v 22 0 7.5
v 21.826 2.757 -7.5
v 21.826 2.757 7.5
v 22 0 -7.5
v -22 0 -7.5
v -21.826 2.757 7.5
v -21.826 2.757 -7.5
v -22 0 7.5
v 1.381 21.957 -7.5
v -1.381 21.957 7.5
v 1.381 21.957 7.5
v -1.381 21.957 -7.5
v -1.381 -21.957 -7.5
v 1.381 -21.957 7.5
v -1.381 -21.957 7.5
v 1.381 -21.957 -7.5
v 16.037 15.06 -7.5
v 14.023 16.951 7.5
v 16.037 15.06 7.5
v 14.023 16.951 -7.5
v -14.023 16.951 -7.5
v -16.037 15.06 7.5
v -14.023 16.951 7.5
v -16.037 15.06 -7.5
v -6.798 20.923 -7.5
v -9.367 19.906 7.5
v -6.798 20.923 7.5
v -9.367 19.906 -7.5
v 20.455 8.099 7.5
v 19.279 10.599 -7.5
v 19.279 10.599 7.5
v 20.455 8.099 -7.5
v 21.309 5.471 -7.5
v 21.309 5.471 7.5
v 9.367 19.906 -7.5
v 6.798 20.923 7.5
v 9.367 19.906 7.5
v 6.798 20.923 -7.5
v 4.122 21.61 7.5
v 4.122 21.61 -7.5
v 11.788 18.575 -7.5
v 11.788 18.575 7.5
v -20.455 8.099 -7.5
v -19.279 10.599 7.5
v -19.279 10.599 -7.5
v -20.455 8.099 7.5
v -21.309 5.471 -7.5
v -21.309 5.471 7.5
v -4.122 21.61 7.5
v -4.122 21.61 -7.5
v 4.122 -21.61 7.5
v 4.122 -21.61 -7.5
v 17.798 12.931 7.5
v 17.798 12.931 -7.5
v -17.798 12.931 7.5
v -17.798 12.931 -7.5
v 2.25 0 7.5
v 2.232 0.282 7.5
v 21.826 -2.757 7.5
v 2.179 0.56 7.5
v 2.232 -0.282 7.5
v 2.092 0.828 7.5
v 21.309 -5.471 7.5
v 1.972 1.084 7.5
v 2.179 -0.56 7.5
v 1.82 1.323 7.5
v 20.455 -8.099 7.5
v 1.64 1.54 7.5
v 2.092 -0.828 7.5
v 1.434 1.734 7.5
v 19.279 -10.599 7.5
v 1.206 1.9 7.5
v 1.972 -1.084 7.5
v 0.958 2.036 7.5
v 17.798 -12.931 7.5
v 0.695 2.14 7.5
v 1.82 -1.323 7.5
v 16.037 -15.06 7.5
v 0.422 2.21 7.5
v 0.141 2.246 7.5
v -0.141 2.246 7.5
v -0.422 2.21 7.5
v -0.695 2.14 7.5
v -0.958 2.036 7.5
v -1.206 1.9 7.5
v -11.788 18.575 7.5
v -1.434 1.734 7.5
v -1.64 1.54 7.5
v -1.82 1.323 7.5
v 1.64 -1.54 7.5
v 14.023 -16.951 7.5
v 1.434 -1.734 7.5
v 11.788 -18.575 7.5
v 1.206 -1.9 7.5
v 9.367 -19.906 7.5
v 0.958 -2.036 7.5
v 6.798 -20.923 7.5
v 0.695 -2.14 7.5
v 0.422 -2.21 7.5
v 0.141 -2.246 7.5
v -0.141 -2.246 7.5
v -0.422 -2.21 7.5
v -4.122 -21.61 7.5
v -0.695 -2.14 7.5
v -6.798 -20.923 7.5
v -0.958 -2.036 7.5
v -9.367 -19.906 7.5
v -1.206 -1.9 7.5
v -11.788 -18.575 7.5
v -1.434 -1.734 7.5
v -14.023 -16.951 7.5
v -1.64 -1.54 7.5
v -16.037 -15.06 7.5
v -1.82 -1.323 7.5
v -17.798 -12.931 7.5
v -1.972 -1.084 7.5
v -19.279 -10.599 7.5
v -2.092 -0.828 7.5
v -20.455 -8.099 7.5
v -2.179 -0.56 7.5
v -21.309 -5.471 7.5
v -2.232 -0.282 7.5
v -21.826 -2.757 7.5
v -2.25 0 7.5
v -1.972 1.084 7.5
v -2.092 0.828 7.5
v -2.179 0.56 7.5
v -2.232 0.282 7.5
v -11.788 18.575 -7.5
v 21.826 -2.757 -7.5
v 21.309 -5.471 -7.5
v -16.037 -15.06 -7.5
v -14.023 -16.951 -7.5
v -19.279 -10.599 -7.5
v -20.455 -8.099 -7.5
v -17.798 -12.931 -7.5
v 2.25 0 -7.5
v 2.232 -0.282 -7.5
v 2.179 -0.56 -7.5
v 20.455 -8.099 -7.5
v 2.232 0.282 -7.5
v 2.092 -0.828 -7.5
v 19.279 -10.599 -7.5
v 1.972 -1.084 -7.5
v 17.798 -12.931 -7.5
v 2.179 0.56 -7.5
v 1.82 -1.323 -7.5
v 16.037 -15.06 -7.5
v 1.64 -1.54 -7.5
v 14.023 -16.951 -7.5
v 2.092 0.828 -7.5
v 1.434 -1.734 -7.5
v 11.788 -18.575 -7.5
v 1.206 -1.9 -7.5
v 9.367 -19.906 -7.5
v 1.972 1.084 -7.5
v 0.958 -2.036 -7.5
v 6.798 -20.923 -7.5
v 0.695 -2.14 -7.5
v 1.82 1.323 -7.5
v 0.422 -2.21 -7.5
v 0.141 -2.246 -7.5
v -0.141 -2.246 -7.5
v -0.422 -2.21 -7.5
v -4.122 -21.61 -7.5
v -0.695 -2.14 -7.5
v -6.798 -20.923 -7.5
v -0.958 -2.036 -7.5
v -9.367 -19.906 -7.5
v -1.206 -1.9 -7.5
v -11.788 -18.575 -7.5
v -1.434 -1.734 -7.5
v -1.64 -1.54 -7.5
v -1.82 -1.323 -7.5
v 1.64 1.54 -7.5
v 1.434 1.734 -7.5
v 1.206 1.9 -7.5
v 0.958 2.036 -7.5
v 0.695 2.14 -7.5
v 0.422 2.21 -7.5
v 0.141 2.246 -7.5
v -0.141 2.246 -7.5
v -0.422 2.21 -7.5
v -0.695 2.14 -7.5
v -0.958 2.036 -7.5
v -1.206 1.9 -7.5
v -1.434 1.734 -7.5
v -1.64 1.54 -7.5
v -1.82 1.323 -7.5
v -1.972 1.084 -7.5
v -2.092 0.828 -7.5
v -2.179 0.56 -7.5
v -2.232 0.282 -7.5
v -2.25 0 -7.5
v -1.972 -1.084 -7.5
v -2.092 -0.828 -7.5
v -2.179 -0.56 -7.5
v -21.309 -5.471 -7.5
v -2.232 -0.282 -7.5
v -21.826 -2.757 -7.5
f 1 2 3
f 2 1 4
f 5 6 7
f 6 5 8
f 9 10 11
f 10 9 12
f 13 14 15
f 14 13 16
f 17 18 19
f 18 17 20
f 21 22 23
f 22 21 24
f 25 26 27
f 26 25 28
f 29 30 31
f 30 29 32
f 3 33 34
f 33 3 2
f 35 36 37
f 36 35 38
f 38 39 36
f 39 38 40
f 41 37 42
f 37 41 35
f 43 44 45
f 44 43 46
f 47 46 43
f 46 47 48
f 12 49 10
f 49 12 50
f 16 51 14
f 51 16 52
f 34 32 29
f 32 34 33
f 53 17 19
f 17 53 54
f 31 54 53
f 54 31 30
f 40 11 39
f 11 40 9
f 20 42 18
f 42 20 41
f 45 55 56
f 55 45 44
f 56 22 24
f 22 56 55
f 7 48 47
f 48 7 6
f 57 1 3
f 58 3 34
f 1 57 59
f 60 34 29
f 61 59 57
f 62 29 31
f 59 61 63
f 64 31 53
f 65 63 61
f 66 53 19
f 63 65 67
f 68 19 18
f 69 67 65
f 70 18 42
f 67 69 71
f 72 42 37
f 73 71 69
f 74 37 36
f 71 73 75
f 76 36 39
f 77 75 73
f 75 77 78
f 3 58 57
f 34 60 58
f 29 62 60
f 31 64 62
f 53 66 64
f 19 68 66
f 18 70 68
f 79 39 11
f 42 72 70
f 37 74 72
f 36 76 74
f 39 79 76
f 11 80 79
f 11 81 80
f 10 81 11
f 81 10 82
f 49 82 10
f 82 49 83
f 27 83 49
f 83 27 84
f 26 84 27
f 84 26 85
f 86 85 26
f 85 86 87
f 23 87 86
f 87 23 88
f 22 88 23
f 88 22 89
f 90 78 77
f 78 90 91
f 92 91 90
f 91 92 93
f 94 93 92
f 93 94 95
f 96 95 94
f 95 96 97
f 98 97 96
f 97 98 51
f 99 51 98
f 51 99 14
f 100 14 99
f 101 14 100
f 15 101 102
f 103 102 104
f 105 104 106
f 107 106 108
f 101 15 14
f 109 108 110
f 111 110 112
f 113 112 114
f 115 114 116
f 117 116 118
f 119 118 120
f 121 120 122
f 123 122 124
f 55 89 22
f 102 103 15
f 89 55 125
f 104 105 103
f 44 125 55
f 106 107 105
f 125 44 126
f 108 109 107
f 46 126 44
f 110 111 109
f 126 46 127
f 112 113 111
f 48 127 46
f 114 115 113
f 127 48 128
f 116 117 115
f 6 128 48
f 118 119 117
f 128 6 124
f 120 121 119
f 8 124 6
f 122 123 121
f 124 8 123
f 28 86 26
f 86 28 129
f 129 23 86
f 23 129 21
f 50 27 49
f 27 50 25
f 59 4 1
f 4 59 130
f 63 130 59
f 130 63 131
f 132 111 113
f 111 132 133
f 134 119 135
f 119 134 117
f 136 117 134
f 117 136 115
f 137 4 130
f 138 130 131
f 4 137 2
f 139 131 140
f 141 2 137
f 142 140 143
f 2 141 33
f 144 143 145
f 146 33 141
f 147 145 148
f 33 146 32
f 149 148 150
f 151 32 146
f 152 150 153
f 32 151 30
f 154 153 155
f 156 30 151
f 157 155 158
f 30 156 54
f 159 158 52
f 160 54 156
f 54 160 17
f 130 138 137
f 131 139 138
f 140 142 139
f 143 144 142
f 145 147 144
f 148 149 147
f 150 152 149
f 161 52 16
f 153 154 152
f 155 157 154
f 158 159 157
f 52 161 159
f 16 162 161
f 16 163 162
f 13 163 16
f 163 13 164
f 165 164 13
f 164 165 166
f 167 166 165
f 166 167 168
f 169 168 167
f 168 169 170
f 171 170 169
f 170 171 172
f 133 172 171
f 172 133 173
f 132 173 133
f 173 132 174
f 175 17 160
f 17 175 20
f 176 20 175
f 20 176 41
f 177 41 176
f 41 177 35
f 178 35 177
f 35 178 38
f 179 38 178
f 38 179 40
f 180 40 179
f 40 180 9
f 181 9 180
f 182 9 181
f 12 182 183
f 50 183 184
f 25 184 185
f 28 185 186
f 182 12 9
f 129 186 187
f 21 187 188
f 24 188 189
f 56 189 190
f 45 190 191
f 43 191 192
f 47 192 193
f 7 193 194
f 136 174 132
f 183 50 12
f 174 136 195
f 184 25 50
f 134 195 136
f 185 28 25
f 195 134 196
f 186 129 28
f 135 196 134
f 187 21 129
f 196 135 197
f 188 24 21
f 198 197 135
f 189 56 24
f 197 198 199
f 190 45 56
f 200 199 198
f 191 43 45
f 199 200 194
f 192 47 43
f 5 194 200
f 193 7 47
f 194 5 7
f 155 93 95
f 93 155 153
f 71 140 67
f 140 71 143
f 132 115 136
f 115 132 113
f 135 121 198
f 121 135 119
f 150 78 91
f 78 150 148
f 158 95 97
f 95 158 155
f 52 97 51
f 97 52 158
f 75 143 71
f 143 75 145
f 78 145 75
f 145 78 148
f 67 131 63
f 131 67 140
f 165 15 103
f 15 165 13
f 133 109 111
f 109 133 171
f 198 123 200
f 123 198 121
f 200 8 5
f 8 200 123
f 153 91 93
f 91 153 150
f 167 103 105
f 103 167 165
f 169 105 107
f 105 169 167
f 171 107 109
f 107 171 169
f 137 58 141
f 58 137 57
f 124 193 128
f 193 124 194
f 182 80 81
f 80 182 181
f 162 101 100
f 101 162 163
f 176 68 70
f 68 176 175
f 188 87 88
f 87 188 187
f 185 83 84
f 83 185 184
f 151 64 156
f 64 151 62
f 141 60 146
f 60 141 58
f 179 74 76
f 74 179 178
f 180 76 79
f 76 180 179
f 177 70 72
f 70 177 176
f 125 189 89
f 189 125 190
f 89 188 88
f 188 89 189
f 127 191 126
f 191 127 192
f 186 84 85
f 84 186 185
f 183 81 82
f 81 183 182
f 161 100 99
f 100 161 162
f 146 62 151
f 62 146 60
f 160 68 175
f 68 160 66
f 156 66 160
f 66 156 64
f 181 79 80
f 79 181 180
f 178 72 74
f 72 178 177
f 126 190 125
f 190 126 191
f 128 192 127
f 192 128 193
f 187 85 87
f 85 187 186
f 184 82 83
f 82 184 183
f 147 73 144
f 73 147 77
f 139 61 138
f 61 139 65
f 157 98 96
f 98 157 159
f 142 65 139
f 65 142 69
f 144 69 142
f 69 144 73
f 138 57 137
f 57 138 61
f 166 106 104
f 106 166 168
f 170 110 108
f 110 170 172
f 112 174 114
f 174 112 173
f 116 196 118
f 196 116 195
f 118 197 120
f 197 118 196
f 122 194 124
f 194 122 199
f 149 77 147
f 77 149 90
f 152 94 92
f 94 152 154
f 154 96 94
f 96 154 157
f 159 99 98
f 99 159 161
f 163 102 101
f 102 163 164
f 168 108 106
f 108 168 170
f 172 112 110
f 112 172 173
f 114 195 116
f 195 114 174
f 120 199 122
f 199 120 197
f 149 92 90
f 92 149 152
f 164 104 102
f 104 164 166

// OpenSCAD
$fn = 50;


difference() {
	union() {
		translate(v = [0, 0, -7.5000000000]) {
			cylinder(h = 15, r = 22.0000000000);
		}
	}
	union() {
		translate(v = [0, 0, -100.0000000000]) {
			cylinder(h = 200, r = 2.2500000000);
		}
	}
}
